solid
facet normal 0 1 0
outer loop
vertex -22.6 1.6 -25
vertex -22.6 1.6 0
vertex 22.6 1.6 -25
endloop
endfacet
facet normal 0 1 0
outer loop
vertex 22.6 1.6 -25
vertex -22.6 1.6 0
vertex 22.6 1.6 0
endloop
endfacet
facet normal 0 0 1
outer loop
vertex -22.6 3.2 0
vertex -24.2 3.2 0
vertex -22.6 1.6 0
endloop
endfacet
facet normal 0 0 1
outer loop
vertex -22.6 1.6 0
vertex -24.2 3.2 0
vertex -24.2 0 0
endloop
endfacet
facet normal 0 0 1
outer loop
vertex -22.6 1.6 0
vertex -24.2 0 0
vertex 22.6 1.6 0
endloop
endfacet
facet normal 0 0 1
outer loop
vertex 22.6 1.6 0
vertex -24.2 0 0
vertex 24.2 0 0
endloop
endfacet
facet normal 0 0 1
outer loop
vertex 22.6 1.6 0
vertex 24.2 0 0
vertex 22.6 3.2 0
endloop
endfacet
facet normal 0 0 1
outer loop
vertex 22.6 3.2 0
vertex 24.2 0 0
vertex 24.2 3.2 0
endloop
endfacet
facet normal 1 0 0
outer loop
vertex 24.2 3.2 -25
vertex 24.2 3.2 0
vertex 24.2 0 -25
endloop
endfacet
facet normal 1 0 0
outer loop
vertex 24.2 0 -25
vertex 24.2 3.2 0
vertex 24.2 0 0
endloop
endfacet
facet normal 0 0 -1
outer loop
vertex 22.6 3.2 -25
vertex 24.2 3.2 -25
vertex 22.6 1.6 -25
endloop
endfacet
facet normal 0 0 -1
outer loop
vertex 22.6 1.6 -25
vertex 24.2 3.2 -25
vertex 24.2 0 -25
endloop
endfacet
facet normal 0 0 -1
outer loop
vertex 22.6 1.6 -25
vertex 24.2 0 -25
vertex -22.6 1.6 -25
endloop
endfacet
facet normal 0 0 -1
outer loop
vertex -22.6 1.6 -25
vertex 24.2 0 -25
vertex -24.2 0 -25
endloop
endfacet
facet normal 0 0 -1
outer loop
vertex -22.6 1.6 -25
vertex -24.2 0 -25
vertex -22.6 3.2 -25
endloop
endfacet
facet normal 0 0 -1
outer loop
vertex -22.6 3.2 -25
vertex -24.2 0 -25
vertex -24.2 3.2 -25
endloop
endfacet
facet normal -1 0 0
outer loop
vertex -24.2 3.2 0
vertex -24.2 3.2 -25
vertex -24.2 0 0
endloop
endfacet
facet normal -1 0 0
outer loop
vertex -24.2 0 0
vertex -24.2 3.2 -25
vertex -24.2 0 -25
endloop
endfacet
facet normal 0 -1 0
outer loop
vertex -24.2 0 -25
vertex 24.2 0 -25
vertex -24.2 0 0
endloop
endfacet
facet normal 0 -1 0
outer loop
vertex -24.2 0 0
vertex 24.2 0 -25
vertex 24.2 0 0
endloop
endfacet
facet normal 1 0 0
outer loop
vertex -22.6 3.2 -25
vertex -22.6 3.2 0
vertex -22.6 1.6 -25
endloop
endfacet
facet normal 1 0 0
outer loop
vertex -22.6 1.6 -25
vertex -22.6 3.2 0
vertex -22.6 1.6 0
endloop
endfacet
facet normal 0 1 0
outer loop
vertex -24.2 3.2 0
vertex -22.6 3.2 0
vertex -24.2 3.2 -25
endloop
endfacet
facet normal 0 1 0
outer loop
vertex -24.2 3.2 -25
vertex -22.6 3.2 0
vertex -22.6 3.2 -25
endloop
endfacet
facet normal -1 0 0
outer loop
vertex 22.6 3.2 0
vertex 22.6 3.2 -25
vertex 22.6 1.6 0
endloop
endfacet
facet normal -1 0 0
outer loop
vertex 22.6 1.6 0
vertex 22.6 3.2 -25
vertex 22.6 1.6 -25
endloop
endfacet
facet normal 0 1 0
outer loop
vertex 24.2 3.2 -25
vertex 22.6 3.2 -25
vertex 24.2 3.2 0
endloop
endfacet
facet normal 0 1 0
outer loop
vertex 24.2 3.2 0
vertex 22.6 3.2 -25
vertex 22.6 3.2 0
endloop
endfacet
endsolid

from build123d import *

# Parameters (mm, degrees)
BOSS_EXTRUDE1_DEPTH = 1.6
SKETCH2_W           = 1.6
SKETCH2_H           = 25
BOSS_EXTRUDE2_DEPTH = 1.6


with BuildPart() as part:
    # Sketch1 → Boss-Extrude1 (new body)
    with BuildSketch(Plane(origin=(0, 0, 0), x_dir=(1, 0, 0), z_dir=(0, 1, 0))):
        Polygon((0, 0), (24.2, 0), (24.2, 25), (-24.2, 25), (-24.2, 0), align=None)
    extrude(amount=BOSS_EXTRUDE1_DEPTH)

    # Sketch2 → Boss-Extrude2 (add)
    with BuildSketch(Plane(origin=(0, 1.6, 0), x_dir=(1, 0, 0), z_dir=(0, 1, 0))):
        with Locations((-23.4, 12.5)):
            Rectangle(SKETCH2_W, SKETCH2_H)
        with Locations((23.4, 12.5)):
            Rectangle(SKETCH2_W, SKETCH2_H)
    extrude(amount=BOSS_EXTRUDE2_DEPTH)


solid = part.part
